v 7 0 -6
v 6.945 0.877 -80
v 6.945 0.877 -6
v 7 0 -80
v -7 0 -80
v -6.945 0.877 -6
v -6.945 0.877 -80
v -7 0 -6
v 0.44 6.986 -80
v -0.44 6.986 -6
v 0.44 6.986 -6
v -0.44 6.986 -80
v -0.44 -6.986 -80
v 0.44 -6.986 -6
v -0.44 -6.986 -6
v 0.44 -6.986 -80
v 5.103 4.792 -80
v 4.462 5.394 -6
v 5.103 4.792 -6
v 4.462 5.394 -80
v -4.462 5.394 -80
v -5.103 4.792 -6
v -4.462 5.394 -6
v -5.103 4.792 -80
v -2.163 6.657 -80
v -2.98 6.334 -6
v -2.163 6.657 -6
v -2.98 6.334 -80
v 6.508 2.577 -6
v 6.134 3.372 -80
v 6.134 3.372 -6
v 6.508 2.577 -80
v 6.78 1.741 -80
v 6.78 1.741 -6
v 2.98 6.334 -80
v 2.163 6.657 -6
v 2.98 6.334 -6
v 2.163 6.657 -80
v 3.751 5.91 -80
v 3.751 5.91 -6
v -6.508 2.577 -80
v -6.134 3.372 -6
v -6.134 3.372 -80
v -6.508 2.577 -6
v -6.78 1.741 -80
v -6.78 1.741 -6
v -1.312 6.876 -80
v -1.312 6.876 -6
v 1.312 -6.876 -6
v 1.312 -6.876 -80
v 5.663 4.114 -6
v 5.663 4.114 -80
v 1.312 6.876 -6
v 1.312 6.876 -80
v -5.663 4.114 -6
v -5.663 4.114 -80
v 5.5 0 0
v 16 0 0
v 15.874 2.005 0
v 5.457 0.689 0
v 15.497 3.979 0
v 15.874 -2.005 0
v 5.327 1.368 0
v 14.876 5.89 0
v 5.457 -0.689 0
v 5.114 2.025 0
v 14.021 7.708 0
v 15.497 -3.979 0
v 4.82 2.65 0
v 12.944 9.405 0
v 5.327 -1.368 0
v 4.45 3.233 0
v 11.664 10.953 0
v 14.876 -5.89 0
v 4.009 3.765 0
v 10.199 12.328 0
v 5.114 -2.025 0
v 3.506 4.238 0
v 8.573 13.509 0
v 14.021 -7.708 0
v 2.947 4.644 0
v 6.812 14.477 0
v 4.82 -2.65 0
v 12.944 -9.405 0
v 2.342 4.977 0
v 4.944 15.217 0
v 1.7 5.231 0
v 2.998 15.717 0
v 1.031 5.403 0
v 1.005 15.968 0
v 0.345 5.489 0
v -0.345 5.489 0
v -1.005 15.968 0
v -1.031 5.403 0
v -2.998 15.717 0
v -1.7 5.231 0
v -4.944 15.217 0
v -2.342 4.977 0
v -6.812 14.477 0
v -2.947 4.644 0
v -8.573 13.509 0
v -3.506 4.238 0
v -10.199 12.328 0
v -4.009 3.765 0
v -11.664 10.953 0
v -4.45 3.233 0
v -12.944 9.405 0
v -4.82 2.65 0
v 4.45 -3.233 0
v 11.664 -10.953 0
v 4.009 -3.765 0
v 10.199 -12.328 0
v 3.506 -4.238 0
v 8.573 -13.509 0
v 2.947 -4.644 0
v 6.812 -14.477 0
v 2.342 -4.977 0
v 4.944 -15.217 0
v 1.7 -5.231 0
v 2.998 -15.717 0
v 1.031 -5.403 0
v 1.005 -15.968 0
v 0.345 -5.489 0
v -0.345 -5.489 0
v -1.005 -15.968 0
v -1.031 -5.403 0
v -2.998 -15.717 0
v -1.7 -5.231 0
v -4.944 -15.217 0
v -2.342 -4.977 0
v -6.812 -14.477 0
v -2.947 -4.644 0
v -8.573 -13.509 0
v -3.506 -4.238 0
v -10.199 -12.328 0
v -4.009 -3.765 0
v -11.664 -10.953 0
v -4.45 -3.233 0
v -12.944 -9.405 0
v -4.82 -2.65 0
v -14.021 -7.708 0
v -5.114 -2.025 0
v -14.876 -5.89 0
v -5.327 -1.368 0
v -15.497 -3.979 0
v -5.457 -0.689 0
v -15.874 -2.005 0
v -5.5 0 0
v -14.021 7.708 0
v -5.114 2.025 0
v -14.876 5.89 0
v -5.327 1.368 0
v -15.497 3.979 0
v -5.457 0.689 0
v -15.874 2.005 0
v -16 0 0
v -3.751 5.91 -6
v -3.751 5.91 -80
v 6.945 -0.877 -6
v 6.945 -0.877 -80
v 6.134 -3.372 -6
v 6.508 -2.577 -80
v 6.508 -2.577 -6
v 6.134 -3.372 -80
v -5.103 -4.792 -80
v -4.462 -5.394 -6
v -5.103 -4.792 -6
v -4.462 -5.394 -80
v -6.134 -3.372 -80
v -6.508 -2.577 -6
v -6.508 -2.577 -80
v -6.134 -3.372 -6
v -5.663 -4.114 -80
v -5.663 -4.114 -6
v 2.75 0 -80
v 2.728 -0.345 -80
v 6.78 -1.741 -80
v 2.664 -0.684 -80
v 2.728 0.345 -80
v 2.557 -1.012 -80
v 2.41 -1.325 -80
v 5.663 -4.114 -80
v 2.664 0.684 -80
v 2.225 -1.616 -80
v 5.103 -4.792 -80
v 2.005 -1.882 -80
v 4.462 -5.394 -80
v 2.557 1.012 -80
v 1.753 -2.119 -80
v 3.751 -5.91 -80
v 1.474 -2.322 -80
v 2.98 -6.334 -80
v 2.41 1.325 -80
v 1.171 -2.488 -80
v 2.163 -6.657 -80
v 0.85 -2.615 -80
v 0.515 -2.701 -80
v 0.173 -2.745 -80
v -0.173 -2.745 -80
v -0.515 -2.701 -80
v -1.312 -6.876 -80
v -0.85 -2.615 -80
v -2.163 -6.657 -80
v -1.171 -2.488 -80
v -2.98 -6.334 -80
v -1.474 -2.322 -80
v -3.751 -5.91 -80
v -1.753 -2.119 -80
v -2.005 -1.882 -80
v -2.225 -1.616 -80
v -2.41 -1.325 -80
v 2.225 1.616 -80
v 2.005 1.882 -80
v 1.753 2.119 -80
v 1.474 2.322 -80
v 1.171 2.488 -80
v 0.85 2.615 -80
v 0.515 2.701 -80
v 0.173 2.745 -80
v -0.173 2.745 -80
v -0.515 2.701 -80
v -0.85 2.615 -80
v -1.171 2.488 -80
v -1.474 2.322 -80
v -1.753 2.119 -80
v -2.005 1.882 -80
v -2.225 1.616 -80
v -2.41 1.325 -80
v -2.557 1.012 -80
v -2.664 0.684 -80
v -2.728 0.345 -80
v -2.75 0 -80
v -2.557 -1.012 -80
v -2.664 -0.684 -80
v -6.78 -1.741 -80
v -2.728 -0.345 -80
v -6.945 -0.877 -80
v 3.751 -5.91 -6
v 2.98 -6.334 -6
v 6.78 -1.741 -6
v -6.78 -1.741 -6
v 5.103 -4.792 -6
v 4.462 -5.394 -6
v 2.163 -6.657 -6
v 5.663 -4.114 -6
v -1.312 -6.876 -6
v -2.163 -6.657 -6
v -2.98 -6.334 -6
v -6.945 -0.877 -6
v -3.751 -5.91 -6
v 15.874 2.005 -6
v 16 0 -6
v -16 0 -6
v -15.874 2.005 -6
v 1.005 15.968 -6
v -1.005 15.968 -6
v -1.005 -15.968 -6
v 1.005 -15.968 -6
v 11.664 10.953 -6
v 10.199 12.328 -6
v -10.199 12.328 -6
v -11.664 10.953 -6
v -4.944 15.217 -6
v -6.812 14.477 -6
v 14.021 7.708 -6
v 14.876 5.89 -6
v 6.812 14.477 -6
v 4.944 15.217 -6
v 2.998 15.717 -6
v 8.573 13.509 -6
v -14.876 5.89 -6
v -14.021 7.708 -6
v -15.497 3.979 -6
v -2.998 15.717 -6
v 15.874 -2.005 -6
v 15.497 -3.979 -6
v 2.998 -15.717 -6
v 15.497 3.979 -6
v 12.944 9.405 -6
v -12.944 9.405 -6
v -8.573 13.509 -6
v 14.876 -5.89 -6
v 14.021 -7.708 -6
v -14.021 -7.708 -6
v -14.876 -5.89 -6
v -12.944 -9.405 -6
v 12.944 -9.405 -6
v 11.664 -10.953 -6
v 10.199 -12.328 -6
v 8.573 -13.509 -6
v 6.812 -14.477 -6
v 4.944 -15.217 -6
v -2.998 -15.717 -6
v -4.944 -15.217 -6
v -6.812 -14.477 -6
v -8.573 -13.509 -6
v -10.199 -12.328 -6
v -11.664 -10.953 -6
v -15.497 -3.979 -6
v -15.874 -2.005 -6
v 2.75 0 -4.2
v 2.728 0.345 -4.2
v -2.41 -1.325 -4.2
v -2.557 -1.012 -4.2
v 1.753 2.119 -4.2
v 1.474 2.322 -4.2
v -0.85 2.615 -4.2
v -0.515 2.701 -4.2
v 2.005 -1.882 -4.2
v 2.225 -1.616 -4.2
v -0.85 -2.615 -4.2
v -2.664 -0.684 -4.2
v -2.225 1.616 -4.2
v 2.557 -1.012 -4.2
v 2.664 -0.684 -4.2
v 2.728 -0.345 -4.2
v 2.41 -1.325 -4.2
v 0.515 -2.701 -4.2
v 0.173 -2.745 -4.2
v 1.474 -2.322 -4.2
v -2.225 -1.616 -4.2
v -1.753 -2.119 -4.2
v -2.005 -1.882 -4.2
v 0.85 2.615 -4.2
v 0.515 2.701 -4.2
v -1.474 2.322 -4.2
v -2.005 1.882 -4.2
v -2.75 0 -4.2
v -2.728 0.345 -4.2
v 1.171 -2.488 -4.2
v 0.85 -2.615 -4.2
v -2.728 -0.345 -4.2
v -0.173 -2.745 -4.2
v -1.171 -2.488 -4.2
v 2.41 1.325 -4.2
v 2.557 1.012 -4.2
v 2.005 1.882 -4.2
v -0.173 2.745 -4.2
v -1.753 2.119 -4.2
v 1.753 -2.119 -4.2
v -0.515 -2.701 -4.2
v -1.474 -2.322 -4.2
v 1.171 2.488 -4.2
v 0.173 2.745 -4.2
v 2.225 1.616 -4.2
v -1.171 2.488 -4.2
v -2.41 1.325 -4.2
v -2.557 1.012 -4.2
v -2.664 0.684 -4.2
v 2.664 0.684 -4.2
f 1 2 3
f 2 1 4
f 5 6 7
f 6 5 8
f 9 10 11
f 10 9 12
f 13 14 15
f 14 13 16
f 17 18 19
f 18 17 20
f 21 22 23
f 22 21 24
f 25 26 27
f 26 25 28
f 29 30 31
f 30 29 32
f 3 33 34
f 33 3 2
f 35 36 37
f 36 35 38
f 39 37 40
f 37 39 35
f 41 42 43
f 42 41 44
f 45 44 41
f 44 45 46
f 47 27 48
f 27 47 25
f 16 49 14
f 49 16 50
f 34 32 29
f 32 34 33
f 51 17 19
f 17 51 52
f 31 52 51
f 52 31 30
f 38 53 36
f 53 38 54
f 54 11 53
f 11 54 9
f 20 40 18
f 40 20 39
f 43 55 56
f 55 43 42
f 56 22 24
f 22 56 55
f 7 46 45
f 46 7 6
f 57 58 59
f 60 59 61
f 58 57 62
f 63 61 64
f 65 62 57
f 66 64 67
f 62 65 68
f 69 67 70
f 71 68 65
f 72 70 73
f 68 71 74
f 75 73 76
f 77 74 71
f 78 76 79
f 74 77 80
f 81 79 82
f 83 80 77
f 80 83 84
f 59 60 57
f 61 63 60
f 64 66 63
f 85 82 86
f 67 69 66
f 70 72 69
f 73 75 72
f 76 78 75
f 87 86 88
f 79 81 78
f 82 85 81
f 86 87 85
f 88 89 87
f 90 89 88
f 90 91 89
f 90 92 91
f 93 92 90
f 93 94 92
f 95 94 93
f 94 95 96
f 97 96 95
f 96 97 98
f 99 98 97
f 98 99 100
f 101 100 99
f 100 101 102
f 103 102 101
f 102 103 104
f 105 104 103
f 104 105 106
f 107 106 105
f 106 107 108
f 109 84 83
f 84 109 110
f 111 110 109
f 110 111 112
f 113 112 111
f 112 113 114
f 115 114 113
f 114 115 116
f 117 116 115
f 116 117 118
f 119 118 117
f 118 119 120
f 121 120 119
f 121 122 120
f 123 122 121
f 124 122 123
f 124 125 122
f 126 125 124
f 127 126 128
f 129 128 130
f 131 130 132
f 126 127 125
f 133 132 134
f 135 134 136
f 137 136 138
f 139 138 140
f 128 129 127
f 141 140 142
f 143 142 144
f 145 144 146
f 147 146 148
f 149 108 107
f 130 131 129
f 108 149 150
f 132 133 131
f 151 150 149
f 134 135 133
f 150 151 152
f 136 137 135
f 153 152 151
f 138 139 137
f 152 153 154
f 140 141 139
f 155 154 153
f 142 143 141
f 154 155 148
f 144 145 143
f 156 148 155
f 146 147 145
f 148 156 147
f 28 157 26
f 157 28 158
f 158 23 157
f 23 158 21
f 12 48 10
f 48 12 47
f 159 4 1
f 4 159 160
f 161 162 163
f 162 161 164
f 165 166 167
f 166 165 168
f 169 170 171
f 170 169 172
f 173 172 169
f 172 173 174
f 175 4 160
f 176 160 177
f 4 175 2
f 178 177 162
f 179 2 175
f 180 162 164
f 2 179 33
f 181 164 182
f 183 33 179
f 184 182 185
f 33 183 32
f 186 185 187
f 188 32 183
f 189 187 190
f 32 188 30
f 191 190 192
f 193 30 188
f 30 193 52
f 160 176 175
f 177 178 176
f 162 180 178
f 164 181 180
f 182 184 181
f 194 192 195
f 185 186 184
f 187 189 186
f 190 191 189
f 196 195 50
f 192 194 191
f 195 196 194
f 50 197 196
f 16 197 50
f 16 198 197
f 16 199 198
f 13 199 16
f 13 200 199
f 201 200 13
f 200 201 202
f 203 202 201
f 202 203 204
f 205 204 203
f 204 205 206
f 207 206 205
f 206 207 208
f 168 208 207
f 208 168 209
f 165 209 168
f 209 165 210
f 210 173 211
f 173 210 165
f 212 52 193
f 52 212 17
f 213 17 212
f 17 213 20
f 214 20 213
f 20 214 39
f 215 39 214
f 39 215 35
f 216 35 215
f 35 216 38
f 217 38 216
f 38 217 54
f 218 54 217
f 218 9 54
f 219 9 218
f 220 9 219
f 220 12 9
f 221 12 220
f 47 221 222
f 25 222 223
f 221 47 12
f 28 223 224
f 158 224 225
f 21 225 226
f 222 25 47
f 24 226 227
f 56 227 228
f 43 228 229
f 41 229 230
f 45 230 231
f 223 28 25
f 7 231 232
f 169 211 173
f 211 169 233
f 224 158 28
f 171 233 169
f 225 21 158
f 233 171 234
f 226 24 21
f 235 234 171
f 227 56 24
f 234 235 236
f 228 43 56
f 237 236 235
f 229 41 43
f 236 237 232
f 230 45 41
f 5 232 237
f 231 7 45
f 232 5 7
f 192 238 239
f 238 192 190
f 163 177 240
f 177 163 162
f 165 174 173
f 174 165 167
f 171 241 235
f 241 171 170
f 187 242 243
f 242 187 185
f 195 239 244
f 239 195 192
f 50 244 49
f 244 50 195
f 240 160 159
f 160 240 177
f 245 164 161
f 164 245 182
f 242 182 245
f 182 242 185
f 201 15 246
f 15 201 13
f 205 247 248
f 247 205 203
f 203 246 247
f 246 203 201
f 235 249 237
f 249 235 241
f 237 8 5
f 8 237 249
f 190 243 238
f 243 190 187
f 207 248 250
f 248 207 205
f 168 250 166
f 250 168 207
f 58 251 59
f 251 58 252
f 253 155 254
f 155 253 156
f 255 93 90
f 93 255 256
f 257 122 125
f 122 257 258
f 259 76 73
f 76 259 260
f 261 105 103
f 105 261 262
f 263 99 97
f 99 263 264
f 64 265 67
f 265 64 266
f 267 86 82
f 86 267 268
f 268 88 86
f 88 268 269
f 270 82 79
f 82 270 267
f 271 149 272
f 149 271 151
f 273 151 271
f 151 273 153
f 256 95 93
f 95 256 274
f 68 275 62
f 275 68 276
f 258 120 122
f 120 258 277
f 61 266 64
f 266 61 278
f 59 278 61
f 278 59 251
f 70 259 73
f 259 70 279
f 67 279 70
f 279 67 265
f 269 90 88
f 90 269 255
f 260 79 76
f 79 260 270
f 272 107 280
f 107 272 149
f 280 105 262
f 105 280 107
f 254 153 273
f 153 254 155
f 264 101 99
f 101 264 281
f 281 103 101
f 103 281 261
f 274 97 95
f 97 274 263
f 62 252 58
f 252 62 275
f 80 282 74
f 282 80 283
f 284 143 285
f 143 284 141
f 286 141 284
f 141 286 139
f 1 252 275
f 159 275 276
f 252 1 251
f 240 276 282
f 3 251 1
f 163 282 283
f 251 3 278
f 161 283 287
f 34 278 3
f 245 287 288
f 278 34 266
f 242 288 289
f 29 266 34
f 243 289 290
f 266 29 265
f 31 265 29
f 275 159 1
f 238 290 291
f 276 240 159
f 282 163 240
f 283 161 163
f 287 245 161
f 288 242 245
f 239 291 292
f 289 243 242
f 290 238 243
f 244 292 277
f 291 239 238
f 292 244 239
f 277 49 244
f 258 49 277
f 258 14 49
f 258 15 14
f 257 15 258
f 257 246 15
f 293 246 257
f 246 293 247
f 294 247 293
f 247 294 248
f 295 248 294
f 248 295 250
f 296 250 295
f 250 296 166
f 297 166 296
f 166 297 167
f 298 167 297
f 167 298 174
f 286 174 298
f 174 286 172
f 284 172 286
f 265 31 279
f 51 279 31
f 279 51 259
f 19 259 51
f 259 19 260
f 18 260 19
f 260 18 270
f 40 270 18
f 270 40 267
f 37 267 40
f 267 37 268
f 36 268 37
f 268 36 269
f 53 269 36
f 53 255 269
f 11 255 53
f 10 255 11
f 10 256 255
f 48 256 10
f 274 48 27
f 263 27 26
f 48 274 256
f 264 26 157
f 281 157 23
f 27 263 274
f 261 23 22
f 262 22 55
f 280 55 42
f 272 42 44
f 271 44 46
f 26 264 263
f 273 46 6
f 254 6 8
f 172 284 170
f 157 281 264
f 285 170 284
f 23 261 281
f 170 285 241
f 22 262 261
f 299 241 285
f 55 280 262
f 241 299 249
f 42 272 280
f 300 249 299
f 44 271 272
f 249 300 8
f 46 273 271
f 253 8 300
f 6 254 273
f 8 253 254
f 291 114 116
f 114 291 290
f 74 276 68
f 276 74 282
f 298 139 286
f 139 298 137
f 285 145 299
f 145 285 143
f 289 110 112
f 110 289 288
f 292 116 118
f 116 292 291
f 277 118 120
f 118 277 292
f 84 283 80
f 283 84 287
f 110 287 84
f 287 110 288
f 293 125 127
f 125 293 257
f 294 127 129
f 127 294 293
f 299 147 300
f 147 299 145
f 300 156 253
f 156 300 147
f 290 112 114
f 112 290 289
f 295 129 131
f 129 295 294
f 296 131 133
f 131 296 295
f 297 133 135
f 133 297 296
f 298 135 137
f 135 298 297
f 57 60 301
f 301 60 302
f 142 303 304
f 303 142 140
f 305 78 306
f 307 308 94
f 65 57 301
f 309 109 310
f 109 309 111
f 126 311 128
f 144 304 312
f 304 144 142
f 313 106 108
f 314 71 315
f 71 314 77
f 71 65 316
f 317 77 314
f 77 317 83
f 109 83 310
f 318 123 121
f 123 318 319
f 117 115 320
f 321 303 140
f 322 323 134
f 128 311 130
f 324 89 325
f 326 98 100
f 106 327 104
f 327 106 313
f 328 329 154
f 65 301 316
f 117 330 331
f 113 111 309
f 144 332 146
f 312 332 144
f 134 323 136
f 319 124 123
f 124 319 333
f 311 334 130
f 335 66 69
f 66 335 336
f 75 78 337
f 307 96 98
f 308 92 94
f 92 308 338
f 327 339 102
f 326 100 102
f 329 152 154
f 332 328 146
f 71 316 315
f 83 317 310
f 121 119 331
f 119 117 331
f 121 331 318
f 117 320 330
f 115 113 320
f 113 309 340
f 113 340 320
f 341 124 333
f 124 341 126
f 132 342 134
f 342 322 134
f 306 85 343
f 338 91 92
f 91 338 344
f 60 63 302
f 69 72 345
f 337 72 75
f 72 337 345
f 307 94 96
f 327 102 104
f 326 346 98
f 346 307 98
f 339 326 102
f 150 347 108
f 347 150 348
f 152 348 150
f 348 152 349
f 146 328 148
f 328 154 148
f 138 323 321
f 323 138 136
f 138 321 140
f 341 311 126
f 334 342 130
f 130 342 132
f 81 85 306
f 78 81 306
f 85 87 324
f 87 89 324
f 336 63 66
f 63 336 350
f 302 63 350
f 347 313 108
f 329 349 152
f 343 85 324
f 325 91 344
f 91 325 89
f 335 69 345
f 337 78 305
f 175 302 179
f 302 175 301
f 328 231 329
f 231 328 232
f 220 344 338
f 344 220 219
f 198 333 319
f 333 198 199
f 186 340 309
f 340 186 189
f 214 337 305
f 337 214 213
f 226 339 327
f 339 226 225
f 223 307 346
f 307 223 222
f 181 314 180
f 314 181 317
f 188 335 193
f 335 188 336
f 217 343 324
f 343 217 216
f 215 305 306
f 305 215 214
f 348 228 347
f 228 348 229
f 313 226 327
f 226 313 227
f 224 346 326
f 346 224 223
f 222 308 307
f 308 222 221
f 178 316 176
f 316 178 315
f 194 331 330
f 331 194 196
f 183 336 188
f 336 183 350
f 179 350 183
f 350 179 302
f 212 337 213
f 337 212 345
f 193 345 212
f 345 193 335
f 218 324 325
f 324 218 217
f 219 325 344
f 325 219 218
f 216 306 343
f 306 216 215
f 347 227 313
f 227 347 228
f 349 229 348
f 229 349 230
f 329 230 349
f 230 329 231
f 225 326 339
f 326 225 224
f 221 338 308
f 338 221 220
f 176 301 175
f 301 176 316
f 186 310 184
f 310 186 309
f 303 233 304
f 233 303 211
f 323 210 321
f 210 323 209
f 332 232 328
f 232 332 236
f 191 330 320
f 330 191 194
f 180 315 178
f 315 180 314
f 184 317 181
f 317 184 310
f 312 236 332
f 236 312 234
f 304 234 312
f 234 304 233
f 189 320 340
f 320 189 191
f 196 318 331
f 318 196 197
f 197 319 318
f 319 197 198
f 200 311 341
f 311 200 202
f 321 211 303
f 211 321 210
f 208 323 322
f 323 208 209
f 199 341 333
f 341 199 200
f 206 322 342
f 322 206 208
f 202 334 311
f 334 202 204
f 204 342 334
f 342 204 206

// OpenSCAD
$fn = 50;


difference() {
	union() {
		translate(v = [0, 0, -80.0000000000]) {
			cylinder(h = 80, r = 7.0000000000);
		}
		translate(v = [0, 0, -6.0000000000]) {
			cylinder(h = 6, r = 16.0000000000);
		}
	}
	union() {
		translate(v = [0, 0, 0]) {
			rotate(a = [0, 0, 0]) {
				difference() {
					union() {
						#translate(v = [0, 0, -80.0000000000]) {
							cylinder(h = 80, r = 2.2500000000);
						}
						#translate(v = [0, 0, -4.2000000000]) {
							cylinder(h = 4.2000000000, r1 = 2.7500000000, r2 = 5.5000000000);
						}
						#translate(v = [0, 0, -80.0000000000]) {
							cylinder(h = 80, r = 2.7500000000);
						}
						#translate(v = [0, 0, -80.0000000000]) {
							cylinder(h = 80, r = 2.2500000000);
						}
					}
					union();
				}
			}
		}
	}
}
